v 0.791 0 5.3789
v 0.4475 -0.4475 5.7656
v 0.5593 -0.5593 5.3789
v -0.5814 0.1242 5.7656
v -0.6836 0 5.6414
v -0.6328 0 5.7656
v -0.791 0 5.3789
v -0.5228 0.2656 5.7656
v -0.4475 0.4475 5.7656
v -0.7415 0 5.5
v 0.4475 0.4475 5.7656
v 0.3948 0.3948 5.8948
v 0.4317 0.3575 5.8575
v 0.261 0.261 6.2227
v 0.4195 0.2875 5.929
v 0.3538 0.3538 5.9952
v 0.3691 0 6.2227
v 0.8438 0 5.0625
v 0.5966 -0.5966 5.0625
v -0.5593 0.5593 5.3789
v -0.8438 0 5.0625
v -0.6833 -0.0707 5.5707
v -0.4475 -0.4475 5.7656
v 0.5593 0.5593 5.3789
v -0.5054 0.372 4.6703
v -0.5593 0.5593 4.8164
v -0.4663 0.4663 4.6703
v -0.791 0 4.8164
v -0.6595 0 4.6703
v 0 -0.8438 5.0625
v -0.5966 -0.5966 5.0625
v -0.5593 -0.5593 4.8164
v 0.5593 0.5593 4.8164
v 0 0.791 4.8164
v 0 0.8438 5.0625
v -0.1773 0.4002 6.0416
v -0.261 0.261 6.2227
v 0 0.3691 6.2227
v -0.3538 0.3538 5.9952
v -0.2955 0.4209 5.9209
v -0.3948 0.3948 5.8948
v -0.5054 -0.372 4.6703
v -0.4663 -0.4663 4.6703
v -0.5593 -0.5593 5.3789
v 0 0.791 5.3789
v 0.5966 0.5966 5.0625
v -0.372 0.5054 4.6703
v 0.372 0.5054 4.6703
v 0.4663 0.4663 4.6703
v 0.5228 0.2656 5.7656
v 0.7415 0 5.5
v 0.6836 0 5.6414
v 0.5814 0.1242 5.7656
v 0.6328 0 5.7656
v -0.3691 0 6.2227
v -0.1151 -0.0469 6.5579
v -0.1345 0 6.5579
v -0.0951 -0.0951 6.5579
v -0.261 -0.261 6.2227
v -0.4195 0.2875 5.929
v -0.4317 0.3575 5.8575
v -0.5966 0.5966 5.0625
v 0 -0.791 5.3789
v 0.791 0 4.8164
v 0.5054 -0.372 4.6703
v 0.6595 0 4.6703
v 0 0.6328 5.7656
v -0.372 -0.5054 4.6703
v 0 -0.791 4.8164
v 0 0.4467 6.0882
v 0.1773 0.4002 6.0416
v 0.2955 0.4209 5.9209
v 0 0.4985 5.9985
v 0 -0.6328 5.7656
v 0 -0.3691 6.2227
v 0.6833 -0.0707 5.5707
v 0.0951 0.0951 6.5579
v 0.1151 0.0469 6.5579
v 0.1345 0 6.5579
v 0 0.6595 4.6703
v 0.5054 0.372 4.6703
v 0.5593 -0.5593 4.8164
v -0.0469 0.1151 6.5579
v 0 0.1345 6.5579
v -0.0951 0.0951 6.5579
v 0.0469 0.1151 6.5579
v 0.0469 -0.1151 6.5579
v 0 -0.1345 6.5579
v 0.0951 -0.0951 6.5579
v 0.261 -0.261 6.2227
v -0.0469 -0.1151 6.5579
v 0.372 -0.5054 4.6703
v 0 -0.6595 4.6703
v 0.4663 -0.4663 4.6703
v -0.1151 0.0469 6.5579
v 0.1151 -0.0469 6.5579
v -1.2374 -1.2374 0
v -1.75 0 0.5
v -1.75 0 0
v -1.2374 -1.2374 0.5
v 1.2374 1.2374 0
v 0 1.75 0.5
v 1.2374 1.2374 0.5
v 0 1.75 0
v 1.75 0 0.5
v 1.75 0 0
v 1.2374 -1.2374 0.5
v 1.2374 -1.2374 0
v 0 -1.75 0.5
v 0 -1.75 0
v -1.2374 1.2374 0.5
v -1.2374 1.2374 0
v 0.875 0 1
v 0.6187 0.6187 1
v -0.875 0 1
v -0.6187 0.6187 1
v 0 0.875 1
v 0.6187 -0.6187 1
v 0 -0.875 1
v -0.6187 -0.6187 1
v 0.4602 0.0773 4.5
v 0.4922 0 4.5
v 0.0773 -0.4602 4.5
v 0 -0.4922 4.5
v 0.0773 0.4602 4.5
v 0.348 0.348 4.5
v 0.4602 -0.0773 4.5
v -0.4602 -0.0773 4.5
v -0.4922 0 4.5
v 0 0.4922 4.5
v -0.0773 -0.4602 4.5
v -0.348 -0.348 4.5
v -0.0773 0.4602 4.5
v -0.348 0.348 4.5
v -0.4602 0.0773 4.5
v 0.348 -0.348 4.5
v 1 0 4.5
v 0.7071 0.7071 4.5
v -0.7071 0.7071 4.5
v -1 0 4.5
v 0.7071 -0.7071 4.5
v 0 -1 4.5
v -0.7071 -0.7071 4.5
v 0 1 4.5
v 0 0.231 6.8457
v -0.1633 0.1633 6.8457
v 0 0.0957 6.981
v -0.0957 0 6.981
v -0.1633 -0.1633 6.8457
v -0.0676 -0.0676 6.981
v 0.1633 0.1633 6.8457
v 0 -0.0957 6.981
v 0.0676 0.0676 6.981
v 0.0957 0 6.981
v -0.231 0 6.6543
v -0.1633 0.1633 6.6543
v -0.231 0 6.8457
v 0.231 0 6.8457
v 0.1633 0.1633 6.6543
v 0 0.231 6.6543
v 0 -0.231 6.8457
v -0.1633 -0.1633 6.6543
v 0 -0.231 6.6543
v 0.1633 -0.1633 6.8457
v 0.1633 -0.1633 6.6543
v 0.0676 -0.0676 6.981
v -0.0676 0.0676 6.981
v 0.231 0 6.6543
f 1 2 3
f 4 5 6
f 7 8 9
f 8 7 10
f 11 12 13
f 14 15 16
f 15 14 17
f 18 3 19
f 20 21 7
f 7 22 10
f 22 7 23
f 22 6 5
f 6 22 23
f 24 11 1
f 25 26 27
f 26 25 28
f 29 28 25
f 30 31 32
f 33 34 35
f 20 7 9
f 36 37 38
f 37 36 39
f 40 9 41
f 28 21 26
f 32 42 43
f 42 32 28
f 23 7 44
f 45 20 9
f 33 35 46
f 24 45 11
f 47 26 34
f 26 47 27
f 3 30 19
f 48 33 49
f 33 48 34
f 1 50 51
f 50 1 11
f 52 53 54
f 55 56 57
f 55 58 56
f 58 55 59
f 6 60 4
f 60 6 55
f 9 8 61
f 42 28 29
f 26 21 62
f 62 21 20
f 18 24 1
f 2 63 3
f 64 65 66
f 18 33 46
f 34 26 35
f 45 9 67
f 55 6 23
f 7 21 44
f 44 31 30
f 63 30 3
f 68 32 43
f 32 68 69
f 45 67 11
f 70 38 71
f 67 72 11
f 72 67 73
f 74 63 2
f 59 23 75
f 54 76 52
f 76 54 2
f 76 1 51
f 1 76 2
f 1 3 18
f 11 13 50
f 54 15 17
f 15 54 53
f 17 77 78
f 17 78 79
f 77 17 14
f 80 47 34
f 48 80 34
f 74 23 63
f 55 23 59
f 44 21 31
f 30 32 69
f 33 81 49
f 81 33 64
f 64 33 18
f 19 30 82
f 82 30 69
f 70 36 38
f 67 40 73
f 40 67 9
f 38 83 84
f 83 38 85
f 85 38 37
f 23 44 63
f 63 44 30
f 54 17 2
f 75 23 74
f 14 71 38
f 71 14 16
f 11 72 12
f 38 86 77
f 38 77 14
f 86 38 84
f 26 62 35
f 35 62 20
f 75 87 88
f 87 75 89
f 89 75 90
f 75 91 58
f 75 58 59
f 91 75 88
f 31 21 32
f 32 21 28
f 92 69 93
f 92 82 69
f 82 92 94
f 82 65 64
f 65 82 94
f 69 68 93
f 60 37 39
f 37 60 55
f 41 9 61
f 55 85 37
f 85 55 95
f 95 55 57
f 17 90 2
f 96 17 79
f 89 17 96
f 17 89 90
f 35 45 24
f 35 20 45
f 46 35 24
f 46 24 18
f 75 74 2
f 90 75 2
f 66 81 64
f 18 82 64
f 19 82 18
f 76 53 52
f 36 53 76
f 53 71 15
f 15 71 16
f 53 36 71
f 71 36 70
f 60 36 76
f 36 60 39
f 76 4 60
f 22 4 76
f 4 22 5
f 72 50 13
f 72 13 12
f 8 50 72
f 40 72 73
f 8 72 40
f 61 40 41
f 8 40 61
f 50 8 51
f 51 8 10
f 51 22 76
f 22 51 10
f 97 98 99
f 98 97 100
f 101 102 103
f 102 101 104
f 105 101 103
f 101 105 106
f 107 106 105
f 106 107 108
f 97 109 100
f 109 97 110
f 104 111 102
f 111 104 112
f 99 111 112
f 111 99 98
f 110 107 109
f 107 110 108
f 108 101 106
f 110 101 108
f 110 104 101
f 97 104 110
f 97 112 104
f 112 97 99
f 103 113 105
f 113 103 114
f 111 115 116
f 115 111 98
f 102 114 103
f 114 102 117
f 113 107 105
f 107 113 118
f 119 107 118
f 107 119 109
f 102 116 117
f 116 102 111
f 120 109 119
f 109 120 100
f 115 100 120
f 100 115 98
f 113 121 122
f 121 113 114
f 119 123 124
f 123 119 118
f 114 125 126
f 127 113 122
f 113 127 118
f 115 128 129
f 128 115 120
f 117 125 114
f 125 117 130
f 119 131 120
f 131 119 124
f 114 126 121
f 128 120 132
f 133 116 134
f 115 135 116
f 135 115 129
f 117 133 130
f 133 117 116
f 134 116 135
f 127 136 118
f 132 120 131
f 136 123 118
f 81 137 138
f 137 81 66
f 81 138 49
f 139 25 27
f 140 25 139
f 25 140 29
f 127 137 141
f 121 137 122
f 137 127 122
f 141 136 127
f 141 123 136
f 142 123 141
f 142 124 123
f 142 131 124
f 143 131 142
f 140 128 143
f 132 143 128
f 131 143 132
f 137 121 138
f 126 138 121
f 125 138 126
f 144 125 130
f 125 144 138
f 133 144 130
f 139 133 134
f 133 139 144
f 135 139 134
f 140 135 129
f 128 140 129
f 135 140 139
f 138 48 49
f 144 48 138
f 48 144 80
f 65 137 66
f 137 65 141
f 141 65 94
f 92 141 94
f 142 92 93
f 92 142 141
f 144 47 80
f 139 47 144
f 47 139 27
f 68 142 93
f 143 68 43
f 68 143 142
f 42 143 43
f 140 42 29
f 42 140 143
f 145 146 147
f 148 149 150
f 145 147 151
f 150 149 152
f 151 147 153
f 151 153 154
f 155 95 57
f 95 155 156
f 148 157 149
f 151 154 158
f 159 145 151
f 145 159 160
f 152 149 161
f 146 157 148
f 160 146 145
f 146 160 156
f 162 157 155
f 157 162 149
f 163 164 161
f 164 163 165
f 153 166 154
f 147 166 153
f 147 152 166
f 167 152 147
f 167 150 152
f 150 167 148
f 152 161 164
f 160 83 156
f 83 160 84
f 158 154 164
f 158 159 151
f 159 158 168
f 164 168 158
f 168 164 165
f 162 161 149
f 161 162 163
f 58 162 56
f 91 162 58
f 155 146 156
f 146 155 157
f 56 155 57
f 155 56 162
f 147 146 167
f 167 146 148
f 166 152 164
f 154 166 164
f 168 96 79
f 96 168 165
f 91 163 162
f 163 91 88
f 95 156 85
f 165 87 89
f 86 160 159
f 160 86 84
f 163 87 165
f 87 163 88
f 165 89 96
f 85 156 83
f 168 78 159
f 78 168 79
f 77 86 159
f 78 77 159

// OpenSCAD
// file: ../lib/bezier.scad
/*
This file is used in models found in this repository.
Copyright (C) 2024 Christian Hodgden

This program is free software: you can redistribute it and/or modify it under the terms of the GNU Lesser General Public License as published by the Free Software Foundation, either version 3 of the License, or (at your option) any later version.

This program is distributed in the hope that it will be useful, but WITHOUT ANY WARRANTY; without even the implied warranty of MERCHANTABILITY or FITNESS FOR A PARTICULAR PURPOSE. See the GNU General Public License for more details.

You should have received a copy of the GNU Lesser General Public License along with this program. If not, see <https://www.gnu.org/licenses/>.
*/

function de_casteljau(points, t) = 
	len(points) == 1 ?
	points[0] : 
	de_casteljau(
		[for (i = [0:len(points)-2]) (1 - t) * points[i] + t * points[i + 1]], 
		t
	) ;

function bezier_curve(points, $fn=$fn) = 
	[for (i = [0:$fn]) de_casteljau(points, i / $fn)] ;
// main file
// FIDE Standards have some flexibility
// https://www.fide.com/FIDE/handbook/Standards_of_Chess_Equipment_and_tournament_venue.pdf
// FIDE Handbook C.02.2.2 Height,weight,proportions
// 	- King – 9.5 cm, 
// 	- Queen – 8.5 cm, 
// 	- Bishop – 7 cm, 
// 	- Knight – 6 cm, 
// 	- Rook – 5.5 cm and 
// 	- Pawn – 5 cm. 
// 	- The diameter of the piece's base should measure 40- 50% of its height.
// 	- These dimensions may differ up to 10% from the above recommendation,
// 		- but the order (e.g. King is higher than Queen etc.) must be kept.
// We are going to transgress C.02.2.3
// FIDE Handbook C.02.3.2 Size of the square and the board
// 	- The side of the square should measure 5 to 6 cm. 
// 	- Referring to 2.2 the side of a square should be at least twice the diameter of a pawn’s base (it means four paws on one square).

use <../lib/bezier.scad>;

$fn = 8;
total_height = 7;
base_diameter = total_height / 2;
base_radius = base_diameter / 2;
base_height = 1;
stem_radius = base_radius / 4;
stem_base_radius = base_radius / 2;
head_radius = 1;
stem_height = total_height - base_height - head_radius - 1;

// collar_check enables collar
collar_check = 1;
collar_radius = head_radius * collar_check;

// Base
cylinder(base_height/2, base_radius, base_radius);
translate([0, 0, base_height/2]) 
	cylinder(base_height, base_radius, 0);

// Stem
translate([0, 0, base_height])
	cylinder(stem_height, stem_base_radius, stem_radius);

// Collar
translate([0, 0, total_height - (2.5 * head_radius)])
	cylinder(0.5, collar_radius, 0);

// Head
ctrl_points = [
	[0, 0],
	[0.75, 0],
	[0, 1]
];
head_curve = bezier_curve(ctrl_points);

difference() {
	translate([0, 0, total_height - 2.5 * head_radius])
		scale(2.25)
			// trying to fix odd-poly skewing
			// rotate([0, 0, 60])
				rotate_extrude(angle = 360)
					polygon(head_curve);

	// Notch
	translate([-2.5, 0, 5.5])
		rotate([45, 0, 0])
			cube([5, 5, 0.1]);
}

// Point
translate([0, 0, 6.75])
	sphere(0.25);
